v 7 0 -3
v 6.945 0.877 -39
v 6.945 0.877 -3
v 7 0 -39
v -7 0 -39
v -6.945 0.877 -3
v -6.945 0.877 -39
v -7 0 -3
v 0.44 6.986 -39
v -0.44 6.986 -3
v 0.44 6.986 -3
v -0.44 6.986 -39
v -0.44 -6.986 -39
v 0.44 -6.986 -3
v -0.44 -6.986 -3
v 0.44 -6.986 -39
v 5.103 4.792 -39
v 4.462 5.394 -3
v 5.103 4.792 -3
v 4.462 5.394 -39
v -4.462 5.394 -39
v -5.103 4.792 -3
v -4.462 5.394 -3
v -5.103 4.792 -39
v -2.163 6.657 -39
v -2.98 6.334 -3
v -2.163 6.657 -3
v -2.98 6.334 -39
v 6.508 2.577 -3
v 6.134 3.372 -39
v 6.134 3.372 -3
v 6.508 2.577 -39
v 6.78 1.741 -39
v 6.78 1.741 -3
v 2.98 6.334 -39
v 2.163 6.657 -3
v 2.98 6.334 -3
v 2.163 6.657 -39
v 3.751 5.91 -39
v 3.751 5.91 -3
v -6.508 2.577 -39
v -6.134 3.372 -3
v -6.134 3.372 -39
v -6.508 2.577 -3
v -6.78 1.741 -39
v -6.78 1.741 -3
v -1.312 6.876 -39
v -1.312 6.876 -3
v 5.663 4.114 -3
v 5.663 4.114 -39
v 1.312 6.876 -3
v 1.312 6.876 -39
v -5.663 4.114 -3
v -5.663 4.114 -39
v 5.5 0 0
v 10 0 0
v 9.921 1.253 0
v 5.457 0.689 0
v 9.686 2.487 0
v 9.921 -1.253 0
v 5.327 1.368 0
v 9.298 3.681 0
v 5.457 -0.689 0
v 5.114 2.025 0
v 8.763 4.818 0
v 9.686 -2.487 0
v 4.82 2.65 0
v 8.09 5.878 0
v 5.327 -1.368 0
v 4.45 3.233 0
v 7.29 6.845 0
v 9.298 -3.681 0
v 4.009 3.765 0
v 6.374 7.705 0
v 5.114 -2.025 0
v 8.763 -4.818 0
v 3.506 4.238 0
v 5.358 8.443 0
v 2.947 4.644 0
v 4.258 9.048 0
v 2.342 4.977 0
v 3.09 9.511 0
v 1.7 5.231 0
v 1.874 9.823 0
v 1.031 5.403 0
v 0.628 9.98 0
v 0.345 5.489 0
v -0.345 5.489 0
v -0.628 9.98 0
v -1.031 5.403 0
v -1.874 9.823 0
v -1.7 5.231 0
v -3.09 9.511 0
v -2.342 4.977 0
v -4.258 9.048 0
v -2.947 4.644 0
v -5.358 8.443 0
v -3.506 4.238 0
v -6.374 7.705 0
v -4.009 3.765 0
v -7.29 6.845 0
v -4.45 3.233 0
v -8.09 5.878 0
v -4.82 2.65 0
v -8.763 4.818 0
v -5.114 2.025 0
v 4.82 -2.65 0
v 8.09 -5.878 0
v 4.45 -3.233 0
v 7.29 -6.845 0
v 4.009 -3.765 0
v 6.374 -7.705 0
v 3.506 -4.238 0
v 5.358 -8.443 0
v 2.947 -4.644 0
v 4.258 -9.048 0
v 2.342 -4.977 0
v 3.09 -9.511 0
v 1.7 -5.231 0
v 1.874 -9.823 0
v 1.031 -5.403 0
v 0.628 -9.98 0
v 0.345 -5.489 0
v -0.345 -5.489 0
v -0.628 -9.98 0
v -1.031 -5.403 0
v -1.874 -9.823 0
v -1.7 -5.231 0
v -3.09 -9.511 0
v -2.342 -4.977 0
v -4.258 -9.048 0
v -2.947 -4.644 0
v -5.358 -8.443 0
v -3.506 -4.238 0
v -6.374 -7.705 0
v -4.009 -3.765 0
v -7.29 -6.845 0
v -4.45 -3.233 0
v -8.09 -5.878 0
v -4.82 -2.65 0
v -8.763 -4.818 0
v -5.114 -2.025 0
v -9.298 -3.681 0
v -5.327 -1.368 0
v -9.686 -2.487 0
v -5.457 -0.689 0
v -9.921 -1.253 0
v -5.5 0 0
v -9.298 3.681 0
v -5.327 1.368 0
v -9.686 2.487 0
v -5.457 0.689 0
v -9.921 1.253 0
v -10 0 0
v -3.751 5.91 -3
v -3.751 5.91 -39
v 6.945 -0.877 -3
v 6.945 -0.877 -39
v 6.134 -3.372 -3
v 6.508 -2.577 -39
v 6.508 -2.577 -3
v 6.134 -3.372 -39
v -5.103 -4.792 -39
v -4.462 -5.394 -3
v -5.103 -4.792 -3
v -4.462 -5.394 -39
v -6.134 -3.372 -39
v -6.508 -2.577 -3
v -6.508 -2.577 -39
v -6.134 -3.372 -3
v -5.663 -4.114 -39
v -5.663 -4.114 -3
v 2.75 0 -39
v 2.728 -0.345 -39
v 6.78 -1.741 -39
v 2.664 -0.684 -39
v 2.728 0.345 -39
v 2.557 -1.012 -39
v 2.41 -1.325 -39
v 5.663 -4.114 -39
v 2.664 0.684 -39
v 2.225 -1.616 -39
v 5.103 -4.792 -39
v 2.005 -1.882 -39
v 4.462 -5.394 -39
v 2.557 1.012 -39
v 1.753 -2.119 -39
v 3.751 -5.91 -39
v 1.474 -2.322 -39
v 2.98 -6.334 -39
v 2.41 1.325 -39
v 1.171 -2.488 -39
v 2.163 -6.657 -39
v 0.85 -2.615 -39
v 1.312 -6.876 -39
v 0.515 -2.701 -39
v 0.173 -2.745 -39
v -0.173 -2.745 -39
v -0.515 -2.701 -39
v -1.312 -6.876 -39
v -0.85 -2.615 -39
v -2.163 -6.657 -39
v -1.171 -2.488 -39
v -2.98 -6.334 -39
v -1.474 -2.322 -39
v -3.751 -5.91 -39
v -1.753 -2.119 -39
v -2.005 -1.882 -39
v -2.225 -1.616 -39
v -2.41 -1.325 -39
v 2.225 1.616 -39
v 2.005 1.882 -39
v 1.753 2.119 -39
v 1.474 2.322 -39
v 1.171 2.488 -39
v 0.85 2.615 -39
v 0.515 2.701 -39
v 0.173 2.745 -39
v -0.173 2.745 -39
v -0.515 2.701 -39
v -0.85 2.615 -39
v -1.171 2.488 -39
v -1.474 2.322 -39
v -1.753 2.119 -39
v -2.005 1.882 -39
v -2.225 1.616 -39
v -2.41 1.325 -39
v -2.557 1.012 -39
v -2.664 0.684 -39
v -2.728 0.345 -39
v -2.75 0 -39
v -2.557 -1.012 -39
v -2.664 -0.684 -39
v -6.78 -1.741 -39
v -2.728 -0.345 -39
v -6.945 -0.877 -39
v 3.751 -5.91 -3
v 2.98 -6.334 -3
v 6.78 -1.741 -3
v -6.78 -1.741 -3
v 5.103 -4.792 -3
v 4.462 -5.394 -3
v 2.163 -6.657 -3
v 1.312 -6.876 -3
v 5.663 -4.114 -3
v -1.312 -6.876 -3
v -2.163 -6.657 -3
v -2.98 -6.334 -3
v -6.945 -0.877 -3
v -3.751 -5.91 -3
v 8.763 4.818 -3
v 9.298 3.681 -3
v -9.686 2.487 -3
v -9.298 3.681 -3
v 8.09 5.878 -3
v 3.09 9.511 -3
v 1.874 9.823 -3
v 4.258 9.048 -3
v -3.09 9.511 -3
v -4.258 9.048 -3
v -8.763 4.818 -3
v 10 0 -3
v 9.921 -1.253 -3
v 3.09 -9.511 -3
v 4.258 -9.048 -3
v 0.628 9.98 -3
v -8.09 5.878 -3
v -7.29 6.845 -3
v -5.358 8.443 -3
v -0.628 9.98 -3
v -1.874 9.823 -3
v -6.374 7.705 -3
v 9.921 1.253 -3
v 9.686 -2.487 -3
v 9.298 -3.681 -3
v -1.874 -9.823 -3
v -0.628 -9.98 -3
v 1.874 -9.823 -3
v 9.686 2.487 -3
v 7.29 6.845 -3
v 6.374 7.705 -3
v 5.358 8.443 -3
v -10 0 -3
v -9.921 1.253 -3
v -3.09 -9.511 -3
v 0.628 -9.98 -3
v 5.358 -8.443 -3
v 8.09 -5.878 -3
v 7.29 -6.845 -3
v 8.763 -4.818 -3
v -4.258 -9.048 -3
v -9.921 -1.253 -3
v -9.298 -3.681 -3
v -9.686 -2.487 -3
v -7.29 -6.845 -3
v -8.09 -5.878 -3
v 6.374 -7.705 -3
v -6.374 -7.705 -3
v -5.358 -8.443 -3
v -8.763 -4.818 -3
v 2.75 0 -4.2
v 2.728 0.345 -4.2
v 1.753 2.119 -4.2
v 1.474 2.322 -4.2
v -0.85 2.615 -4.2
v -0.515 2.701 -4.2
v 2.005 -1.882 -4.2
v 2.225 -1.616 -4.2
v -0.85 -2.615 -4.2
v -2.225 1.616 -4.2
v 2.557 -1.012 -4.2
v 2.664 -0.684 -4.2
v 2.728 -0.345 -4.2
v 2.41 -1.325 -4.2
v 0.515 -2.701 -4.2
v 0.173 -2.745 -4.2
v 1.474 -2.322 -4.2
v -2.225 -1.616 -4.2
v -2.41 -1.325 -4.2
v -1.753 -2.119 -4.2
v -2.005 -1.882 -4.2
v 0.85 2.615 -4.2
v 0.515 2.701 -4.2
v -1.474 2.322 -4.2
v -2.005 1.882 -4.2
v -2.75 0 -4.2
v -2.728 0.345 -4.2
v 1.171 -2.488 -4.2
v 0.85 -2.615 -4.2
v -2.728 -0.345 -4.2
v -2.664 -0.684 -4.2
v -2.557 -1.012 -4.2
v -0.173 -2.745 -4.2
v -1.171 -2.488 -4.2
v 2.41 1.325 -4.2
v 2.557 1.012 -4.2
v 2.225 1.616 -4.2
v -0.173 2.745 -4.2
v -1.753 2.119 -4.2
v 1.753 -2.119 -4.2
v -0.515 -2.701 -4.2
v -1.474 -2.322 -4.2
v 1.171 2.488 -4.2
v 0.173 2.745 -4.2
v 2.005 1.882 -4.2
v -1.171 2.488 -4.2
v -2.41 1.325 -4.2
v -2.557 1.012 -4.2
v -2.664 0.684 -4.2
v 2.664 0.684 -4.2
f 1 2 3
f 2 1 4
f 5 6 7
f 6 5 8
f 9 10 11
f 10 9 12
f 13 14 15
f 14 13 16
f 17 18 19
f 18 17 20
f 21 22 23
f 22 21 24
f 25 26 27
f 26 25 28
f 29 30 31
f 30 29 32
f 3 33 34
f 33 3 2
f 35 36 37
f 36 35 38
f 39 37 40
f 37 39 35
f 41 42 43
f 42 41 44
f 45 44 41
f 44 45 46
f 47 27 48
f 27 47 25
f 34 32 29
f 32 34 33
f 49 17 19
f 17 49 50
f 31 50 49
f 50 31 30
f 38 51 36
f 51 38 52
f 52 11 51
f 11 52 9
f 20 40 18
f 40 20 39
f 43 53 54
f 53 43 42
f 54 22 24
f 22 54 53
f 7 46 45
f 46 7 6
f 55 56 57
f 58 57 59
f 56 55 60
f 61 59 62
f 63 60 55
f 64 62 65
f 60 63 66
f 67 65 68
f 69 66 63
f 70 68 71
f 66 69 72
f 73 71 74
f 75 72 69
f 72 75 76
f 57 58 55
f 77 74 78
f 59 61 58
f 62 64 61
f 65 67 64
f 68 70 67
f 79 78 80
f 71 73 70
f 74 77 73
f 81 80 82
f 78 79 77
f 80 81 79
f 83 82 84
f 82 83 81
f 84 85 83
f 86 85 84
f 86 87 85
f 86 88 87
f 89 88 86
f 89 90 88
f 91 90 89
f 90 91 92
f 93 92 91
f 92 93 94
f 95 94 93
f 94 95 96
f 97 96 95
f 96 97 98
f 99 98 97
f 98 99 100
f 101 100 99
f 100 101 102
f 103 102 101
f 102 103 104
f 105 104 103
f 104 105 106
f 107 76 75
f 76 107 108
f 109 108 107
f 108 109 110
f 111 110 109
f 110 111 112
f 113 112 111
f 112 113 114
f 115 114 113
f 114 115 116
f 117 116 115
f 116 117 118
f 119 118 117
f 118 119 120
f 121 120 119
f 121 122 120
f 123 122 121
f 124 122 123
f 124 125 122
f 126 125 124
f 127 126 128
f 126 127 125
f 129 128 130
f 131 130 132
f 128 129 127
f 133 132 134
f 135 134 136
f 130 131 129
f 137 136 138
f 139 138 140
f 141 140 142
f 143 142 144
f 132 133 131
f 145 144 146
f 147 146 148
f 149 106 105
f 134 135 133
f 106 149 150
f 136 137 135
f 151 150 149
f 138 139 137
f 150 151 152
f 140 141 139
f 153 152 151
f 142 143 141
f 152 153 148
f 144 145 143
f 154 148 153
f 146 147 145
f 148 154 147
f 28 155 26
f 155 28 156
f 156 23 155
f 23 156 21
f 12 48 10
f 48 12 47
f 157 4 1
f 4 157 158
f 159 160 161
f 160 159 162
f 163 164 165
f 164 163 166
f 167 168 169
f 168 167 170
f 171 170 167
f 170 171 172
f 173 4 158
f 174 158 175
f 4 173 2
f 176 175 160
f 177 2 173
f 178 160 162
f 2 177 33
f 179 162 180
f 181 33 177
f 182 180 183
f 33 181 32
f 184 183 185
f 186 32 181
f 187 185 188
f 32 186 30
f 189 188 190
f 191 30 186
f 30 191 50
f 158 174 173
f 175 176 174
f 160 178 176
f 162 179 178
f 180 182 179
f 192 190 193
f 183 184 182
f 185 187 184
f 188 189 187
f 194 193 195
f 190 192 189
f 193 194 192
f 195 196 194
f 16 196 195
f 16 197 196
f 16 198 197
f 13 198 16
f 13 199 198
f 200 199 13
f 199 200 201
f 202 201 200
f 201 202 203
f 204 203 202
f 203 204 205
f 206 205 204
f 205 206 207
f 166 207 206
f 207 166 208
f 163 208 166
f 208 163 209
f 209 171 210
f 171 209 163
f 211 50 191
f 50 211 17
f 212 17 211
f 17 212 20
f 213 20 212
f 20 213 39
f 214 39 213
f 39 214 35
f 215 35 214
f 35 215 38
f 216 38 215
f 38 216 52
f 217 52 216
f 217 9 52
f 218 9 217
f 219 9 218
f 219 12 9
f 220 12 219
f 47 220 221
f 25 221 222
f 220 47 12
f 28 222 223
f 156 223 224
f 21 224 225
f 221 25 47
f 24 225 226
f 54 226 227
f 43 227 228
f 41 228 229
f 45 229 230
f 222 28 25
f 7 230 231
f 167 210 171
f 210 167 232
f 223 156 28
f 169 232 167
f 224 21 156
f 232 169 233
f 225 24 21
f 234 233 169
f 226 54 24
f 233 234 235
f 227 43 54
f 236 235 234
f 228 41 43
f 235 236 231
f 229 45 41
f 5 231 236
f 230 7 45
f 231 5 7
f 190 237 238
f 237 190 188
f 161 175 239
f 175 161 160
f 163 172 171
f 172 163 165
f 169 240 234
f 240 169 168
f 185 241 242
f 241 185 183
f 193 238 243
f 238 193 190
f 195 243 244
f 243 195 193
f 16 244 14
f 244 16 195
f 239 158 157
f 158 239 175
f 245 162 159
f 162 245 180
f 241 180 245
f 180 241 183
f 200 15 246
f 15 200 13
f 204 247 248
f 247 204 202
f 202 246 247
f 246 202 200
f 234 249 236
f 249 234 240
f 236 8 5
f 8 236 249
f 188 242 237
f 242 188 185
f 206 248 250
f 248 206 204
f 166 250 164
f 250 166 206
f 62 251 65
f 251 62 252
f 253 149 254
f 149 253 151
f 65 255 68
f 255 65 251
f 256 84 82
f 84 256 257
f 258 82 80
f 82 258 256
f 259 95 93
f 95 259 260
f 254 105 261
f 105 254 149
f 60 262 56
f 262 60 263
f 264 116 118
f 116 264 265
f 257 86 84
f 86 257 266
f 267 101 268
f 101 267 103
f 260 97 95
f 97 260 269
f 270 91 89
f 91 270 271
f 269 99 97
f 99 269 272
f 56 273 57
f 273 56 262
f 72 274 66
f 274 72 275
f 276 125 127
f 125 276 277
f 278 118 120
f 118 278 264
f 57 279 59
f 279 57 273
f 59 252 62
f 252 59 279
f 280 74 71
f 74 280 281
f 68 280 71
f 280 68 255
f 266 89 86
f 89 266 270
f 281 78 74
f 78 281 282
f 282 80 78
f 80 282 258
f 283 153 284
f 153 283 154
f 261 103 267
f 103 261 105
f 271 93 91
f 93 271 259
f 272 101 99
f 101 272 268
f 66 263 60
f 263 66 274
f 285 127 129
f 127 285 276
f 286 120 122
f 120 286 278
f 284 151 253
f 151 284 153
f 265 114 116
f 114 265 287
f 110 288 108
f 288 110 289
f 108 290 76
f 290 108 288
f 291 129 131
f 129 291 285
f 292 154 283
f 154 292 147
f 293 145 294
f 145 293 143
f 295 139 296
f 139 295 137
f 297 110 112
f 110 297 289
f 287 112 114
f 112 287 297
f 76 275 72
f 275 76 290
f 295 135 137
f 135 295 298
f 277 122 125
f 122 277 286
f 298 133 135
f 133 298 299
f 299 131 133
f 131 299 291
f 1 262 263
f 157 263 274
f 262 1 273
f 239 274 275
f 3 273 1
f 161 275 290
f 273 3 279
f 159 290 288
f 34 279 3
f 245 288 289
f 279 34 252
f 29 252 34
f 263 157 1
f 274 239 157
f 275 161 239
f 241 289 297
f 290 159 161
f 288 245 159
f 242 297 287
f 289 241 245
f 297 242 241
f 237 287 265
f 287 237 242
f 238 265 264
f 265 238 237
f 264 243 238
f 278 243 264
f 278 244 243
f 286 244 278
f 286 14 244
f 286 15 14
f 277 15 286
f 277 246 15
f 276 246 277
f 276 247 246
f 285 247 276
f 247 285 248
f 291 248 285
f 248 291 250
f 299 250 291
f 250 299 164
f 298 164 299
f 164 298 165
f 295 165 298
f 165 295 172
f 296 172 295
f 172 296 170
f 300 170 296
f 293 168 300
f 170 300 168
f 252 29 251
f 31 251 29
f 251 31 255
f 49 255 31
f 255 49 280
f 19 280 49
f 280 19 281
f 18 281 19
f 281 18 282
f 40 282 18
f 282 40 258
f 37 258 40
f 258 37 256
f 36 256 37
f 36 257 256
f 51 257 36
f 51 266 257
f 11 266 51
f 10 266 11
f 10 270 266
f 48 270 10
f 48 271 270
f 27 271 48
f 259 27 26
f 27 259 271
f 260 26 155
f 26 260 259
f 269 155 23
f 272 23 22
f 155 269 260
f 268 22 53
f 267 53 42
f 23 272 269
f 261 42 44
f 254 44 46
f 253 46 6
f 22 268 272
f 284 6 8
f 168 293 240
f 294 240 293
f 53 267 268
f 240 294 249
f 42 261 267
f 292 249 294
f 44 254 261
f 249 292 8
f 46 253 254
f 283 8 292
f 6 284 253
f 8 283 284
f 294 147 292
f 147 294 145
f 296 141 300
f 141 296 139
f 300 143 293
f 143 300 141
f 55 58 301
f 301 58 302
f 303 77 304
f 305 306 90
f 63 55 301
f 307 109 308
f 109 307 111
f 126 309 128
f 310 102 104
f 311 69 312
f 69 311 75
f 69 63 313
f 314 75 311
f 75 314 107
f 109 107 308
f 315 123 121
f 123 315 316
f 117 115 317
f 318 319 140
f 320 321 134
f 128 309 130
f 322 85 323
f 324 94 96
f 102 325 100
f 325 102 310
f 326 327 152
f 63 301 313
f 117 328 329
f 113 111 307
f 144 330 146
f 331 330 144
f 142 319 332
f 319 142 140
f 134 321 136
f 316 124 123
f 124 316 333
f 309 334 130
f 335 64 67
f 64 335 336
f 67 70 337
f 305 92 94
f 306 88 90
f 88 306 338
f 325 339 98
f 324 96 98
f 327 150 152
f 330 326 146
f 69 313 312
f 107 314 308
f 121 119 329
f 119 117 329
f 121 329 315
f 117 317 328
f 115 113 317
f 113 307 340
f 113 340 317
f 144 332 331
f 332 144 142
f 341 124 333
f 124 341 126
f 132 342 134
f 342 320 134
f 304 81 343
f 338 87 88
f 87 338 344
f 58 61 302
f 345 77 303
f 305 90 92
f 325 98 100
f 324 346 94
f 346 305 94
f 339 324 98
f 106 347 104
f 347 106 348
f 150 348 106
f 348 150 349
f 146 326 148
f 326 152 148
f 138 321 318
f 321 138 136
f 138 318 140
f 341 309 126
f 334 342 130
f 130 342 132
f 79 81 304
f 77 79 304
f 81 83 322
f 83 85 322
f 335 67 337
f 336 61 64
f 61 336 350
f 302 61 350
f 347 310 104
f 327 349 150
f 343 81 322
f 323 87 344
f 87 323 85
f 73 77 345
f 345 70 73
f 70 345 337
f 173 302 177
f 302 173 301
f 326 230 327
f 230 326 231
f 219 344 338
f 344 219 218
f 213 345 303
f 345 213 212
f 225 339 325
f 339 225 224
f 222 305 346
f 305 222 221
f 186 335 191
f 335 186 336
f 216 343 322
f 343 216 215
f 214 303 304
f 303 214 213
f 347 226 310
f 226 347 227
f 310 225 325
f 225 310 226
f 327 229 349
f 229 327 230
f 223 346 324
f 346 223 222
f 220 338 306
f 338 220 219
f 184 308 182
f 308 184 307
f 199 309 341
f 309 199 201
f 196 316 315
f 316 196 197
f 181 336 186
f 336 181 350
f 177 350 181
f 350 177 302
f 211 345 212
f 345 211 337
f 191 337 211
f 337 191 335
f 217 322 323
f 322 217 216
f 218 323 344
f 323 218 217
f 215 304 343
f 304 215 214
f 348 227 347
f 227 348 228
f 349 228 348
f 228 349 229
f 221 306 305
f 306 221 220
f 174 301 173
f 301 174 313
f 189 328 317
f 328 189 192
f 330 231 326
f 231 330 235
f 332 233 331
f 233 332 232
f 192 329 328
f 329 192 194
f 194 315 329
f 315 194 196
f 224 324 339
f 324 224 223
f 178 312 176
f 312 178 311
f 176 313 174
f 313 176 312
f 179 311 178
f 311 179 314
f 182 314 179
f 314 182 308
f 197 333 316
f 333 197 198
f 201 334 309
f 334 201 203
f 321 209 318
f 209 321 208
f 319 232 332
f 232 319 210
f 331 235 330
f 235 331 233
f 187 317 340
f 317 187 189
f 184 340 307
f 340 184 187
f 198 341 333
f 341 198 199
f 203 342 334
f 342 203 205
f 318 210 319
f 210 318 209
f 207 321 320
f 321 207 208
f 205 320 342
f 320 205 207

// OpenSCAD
$fn = 50;


difference() {
	union() {
		translate(v = [0, 0, -39.0000000000]) {
			cylinder(h = 39, r = 7.0000000000);
		}
		translate(v = [0, 0, -3.0000000000]) {
			cylinder(h = 3, r = 10.0000000000);
		}
	}
	union() {
		translate(v = [0, 0, 0]) {
			rotate(a = [0, 0, 0]) {
				difference() {
					union() {
						#translate(v = [0, 0, -39.0000000000]) {
							cylinder(h = 39, r = 2.2500000000);
						}
						#translate(v = [0, 0, -4.2000000000]) {
							cylinder(h = 4.2000000000, r1 = 2.7500000000, r2 = 5.5000000000);
						}
						#translate(v = [0, 0, -39.0000000000]) {
							cylinder(h = 39, r = 2.7500000000);
						}
						#translate(v = [0, 0, -39.0000000000]) {
							cylinder(h = 39, r = 2.2500000000);
						}
					}
					union();
				}
			}
		}
	}
}
